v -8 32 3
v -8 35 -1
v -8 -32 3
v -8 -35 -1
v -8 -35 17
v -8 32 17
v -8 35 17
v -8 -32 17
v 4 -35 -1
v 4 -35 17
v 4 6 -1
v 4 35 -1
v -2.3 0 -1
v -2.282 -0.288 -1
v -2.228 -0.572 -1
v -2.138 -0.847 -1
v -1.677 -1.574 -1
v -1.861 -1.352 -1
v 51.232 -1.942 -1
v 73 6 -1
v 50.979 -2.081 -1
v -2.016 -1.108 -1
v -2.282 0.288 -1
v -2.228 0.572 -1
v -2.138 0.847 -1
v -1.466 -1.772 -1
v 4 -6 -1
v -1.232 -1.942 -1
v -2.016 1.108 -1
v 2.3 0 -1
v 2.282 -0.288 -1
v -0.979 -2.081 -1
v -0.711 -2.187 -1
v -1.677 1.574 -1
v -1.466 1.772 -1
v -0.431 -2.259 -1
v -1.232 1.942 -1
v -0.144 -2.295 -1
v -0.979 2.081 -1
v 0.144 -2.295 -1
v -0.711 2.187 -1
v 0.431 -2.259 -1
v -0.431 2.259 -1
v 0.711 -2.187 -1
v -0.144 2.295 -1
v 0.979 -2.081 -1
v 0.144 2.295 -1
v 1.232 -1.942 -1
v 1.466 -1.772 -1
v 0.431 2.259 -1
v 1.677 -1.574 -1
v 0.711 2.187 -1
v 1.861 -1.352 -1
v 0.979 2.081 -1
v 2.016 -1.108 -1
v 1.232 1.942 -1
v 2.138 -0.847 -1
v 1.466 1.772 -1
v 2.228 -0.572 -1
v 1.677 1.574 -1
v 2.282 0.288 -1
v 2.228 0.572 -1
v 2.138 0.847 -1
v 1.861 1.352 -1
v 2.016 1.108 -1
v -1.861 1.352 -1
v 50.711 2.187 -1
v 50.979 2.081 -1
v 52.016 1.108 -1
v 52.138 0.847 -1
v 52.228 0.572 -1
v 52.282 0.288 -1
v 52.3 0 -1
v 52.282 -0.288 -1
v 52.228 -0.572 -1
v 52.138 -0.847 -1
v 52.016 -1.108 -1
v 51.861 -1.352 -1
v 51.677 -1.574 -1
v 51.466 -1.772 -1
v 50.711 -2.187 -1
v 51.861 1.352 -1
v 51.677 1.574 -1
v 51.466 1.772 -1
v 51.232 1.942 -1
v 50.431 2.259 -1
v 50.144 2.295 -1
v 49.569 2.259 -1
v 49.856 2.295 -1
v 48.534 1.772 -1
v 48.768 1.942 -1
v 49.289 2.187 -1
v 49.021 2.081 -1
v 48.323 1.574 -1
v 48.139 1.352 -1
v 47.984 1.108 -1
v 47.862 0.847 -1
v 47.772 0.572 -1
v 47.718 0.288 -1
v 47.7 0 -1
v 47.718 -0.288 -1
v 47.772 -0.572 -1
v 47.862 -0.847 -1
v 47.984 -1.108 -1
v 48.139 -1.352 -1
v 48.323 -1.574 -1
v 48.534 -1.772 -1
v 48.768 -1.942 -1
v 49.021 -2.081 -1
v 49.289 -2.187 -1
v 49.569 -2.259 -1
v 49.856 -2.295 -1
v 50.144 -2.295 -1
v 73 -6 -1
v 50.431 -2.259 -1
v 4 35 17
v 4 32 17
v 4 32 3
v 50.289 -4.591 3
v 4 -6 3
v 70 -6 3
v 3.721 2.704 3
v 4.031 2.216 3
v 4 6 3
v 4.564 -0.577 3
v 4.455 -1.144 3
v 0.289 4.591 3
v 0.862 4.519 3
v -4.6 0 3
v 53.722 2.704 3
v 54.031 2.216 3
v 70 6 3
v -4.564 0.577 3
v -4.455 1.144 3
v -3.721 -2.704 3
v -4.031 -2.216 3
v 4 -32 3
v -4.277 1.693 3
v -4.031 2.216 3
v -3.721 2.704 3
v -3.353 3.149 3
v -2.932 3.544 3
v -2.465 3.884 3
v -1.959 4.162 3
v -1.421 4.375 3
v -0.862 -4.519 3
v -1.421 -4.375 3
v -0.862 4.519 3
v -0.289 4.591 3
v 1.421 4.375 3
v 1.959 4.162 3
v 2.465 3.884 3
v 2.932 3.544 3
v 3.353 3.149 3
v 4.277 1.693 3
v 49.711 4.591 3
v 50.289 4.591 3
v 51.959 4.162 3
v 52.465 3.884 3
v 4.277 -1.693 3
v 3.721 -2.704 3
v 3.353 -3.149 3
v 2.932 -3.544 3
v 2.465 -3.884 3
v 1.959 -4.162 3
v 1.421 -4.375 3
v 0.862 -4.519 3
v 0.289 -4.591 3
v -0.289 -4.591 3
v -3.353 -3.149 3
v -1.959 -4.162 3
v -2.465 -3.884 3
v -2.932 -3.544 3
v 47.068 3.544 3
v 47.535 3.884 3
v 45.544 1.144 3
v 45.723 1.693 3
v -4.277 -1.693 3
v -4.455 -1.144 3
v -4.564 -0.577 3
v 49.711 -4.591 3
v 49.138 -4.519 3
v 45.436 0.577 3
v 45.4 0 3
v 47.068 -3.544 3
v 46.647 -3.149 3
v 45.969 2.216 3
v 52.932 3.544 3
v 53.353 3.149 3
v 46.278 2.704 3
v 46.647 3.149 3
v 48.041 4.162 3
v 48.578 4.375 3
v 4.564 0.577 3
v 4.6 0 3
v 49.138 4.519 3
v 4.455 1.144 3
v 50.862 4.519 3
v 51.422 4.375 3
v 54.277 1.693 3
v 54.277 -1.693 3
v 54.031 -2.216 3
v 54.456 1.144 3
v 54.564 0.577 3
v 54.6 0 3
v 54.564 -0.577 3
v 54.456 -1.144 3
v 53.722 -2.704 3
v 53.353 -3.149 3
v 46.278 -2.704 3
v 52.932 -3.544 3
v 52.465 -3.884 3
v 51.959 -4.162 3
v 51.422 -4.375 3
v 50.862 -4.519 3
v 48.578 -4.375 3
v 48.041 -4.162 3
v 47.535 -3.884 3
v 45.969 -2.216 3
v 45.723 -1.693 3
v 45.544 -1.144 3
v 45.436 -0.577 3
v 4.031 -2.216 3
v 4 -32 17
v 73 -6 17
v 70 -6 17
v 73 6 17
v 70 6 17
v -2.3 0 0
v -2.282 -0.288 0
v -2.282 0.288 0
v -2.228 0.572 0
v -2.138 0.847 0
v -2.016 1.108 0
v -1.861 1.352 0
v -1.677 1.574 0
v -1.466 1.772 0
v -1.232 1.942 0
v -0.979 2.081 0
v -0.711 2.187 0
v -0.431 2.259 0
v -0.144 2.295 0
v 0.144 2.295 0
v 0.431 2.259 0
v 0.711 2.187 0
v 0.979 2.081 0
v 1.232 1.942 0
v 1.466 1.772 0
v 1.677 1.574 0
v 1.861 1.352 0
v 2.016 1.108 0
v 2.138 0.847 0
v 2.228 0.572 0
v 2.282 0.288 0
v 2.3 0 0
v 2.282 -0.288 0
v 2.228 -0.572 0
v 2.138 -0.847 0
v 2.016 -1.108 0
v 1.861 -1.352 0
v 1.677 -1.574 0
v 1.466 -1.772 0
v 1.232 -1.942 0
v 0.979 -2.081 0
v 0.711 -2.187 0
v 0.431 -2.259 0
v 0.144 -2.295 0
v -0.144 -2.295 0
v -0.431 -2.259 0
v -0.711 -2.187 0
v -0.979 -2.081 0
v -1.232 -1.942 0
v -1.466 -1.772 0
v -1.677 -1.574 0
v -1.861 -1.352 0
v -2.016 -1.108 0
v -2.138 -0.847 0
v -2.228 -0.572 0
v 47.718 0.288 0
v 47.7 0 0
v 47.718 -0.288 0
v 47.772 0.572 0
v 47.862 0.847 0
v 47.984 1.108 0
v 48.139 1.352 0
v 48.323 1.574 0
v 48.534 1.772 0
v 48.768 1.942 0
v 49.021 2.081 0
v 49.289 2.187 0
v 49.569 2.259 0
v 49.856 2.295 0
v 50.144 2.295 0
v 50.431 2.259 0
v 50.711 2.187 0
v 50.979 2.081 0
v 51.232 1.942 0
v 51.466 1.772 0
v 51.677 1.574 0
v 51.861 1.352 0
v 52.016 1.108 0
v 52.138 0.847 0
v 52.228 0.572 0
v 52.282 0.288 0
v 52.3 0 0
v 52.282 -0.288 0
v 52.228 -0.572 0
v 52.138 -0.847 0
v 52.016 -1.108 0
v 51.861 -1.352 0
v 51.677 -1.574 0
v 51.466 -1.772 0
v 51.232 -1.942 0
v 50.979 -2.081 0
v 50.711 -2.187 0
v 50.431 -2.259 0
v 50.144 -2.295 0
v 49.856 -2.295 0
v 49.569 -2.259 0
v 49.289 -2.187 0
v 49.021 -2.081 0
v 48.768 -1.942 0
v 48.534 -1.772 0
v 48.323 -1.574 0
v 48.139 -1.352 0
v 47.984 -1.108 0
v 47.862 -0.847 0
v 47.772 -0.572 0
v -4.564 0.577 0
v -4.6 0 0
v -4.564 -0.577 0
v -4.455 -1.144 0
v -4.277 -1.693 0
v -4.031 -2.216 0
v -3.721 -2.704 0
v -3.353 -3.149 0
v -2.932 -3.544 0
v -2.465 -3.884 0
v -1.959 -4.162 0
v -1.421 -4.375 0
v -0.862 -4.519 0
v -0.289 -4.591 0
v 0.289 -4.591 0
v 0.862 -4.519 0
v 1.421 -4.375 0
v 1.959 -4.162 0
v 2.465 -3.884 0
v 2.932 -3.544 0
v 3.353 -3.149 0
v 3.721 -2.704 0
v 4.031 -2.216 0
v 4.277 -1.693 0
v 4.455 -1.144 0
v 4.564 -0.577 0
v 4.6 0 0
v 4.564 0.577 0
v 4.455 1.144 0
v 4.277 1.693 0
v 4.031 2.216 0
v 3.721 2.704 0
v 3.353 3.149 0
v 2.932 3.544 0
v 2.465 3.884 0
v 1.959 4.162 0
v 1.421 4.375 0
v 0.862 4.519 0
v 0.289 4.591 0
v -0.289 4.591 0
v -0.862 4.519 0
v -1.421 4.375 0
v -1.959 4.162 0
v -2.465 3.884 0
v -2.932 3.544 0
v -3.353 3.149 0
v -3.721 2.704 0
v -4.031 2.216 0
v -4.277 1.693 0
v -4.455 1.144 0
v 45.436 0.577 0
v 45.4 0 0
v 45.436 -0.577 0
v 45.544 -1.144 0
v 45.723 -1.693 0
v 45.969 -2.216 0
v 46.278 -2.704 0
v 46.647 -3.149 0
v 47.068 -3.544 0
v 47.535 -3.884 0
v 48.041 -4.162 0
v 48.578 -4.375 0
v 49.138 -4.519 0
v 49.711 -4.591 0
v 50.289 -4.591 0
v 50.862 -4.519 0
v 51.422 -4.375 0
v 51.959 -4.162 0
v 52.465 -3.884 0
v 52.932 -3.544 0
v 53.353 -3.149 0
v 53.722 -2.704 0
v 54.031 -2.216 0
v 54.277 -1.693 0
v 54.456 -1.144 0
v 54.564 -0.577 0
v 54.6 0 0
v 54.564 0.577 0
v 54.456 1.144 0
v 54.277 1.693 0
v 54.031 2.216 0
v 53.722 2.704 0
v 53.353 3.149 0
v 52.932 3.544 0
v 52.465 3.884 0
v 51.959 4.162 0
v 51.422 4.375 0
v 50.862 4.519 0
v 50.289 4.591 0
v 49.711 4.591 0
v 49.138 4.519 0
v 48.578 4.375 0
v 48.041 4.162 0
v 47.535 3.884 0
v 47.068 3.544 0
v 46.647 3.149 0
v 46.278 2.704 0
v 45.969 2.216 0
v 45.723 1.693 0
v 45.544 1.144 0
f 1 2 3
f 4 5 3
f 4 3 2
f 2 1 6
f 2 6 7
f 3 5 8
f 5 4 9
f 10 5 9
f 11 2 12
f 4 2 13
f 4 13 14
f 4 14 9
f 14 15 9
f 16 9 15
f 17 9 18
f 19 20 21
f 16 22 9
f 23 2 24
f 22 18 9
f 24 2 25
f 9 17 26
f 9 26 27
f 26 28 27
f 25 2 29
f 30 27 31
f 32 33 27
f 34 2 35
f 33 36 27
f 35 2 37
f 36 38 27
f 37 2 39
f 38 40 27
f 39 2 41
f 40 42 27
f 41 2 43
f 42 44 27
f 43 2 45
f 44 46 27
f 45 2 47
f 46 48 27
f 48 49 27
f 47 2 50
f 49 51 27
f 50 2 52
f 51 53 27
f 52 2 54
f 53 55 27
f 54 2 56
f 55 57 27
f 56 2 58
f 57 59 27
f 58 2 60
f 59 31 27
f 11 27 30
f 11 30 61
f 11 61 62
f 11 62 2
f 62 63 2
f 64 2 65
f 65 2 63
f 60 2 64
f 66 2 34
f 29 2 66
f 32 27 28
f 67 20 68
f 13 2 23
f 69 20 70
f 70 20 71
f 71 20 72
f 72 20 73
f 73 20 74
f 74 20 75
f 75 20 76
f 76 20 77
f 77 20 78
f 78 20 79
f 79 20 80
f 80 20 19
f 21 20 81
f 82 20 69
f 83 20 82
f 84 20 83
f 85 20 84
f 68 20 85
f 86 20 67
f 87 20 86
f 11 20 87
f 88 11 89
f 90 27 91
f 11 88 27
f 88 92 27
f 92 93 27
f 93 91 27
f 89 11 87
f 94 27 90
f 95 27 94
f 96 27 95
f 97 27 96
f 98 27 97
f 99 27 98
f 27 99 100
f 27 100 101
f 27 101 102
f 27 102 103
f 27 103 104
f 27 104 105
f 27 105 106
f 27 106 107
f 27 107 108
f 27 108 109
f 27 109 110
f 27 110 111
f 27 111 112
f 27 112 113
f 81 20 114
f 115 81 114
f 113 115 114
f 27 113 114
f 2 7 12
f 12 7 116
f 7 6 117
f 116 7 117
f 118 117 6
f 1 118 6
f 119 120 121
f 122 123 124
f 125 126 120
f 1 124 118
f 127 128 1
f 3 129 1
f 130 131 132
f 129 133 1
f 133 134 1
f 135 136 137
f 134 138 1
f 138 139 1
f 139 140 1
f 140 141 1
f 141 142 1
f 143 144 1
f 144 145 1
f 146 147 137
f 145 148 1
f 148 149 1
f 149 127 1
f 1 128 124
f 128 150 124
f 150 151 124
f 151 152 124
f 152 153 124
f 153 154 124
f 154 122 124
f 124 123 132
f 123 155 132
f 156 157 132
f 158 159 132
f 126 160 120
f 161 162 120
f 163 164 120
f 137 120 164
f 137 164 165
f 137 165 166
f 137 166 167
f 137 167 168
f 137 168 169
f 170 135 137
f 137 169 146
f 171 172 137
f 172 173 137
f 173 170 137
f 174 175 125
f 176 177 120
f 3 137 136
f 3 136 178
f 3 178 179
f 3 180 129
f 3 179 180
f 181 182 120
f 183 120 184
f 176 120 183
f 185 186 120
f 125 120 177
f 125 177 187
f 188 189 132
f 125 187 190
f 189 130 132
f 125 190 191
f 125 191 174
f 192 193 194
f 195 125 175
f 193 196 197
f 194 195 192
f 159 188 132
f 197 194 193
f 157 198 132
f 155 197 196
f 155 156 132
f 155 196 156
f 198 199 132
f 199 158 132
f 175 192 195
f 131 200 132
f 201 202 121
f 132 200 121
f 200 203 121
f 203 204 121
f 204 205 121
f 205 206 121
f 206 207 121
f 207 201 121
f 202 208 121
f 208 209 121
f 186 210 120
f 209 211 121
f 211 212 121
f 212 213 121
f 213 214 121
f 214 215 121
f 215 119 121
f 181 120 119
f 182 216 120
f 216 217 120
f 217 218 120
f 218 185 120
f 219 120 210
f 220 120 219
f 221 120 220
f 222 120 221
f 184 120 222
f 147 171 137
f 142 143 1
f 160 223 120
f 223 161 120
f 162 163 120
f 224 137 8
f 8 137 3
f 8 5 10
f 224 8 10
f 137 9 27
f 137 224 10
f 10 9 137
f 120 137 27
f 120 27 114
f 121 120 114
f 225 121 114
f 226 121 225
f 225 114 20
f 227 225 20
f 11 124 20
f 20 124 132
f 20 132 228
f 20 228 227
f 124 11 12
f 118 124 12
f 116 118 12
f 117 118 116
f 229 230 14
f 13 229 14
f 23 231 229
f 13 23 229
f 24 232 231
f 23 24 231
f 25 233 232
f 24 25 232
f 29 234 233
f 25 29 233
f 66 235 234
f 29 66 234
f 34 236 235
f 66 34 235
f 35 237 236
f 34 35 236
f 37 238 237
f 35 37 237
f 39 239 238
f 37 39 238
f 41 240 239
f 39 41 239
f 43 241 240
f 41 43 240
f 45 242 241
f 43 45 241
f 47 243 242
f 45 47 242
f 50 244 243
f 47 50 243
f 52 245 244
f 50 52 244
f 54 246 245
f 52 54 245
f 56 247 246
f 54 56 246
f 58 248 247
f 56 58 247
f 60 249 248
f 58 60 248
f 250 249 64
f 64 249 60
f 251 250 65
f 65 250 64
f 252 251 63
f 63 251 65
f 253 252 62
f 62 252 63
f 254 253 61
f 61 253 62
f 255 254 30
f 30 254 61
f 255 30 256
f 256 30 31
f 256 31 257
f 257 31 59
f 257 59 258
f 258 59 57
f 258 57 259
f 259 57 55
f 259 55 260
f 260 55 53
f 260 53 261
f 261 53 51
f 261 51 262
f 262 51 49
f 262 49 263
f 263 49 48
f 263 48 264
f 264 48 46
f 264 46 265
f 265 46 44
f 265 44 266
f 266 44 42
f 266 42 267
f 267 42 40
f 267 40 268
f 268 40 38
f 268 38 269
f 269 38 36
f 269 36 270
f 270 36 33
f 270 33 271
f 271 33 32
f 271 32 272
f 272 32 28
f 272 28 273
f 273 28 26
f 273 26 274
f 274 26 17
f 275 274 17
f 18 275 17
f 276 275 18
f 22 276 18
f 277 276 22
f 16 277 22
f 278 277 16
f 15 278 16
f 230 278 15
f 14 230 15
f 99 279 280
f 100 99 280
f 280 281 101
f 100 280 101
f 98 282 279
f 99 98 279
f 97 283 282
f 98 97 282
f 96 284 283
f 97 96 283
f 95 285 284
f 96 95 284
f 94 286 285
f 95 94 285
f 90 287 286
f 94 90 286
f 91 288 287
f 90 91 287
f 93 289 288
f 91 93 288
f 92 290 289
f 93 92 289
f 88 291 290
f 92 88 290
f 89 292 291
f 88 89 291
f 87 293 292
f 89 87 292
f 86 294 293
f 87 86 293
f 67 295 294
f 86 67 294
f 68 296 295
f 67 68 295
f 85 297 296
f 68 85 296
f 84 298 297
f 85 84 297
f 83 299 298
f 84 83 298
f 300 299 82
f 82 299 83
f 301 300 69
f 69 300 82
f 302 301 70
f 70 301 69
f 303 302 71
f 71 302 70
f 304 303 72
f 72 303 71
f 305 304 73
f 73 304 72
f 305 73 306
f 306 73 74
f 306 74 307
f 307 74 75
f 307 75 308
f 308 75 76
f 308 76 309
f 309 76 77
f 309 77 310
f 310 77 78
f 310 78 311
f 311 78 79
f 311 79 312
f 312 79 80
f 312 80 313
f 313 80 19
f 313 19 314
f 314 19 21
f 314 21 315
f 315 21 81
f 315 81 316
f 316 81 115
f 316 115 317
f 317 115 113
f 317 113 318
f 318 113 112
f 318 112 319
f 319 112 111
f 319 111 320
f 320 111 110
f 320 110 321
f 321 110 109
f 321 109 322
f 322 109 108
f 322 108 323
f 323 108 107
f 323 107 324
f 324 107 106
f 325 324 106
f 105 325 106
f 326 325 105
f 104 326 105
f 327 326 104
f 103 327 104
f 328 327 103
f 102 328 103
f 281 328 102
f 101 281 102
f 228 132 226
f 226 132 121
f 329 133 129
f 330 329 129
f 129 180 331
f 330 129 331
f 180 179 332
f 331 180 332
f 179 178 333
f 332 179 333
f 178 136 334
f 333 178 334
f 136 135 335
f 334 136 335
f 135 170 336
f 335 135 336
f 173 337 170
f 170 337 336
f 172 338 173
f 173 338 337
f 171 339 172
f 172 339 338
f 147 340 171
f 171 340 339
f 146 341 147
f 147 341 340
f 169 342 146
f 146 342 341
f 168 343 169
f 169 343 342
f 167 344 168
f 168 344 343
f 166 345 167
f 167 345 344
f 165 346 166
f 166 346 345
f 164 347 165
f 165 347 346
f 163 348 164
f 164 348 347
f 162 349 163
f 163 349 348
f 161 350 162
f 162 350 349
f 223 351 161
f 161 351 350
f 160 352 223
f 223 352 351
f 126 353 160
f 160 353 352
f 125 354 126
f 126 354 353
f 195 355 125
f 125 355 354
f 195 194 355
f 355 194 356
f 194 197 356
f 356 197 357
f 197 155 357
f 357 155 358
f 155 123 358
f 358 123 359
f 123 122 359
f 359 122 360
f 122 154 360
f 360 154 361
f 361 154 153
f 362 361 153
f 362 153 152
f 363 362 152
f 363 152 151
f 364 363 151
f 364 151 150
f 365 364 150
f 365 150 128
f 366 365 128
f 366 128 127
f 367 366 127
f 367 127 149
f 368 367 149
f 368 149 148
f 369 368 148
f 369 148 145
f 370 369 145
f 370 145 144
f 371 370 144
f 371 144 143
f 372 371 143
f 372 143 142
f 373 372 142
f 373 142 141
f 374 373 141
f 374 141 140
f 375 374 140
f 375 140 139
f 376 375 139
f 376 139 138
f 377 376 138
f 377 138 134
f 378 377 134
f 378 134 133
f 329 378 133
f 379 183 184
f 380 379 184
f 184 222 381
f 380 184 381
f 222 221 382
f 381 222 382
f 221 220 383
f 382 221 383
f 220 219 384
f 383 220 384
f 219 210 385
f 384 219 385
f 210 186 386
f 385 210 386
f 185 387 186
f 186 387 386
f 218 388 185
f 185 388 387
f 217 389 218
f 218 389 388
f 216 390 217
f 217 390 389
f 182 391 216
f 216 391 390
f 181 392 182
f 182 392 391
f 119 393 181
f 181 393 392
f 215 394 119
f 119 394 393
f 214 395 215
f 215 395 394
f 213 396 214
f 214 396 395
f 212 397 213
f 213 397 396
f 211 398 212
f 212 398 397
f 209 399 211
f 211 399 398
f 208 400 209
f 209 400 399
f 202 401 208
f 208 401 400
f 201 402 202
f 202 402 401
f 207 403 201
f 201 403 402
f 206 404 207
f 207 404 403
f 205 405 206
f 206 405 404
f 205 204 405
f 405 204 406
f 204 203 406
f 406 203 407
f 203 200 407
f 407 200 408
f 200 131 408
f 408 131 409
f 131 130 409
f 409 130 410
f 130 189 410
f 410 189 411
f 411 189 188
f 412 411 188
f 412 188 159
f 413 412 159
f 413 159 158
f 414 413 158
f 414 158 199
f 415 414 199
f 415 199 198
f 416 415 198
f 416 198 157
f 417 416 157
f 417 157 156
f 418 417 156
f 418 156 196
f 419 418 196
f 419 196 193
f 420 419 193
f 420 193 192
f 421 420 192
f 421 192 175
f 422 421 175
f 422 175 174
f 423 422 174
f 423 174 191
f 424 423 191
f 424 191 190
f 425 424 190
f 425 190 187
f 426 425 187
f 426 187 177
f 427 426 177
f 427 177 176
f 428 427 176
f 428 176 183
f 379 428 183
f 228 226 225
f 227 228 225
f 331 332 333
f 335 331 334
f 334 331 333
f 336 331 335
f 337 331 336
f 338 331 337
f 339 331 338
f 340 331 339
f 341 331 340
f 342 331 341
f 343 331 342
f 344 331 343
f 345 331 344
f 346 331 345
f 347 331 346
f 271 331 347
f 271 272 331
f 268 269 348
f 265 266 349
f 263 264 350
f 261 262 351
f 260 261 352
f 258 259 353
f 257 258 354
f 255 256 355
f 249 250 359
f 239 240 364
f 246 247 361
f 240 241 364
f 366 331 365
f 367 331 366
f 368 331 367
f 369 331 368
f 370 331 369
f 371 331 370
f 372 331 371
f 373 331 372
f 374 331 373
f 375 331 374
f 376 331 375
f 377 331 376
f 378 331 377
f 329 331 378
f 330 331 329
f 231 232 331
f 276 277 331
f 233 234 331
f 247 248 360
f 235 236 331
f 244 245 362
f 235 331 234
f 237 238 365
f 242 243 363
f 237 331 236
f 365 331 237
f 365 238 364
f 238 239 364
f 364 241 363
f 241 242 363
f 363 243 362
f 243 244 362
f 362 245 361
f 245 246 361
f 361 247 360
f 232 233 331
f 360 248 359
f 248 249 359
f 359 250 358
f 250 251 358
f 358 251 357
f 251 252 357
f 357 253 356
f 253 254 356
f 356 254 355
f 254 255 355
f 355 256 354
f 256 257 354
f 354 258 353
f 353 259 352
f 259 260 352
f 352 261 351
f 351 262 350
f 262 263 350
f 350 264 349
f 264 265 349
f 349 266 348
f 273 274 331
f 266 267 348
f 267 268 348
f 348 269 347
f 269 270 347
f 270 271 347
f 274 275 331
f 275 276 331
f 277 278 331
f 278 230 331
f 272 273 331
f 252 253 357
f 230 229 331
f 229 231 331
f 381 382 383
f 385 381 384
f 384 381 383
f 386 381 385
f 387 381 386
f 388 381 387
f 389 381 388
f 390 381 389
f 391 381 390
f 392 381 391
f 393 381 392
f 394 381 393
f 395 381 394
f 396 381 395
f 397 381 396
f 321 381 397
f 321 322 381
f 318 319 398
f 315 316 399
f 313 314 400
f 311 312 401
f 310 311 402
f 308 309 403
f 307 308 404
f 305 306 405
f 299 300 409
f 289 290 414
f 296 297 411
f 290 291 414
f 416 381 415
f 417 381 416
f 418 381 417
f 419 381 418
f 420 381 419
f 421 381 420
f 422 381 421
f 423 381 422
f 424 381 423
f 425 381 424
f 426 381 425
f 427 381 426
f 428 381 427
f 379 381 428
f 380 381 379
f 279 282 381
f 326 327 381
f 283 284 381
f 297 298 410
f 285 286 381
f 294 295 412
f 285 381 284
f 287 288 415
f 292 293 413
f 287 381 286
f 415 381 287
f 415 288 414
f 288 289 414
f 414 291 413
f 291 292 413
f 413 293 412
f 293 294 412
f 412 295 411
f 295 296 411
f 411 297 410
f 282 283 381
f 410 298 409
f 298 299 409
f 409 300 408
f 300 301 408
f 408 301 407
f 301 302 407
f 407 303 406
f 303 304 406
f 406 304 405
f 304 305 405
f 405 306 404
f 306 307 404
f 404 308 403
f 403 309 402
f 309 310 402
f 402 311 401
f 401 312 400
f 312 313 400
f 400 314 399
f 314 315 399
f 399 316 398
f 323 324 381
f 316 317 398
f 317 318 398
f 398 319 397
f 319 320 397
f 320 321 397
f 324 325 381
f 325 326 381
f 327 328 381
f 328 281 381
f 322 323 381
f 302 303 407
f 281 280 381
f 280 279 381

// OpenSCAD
$fn=50;

difference() {
	translate([20,0,3])
		difference () {
			union() {
				translate([-22,0,5])
					cube(size=[12,70,18], center=true);

				translate([13,0,5])
					cube(size=[80,12,18], center=true);
			}

			translate([0,0,8])
				cube(size=[100,64,16], center=true);
		}

	cylinder(r=2.3, h=100, center=true);
	translate([50,0,0])
		cylinder(r=2.3, h=100, center=true);

	cylinder(r=4.6, h=100);
	translate([50,0,0])
		cylinder(r=4.6, h=100);
}
